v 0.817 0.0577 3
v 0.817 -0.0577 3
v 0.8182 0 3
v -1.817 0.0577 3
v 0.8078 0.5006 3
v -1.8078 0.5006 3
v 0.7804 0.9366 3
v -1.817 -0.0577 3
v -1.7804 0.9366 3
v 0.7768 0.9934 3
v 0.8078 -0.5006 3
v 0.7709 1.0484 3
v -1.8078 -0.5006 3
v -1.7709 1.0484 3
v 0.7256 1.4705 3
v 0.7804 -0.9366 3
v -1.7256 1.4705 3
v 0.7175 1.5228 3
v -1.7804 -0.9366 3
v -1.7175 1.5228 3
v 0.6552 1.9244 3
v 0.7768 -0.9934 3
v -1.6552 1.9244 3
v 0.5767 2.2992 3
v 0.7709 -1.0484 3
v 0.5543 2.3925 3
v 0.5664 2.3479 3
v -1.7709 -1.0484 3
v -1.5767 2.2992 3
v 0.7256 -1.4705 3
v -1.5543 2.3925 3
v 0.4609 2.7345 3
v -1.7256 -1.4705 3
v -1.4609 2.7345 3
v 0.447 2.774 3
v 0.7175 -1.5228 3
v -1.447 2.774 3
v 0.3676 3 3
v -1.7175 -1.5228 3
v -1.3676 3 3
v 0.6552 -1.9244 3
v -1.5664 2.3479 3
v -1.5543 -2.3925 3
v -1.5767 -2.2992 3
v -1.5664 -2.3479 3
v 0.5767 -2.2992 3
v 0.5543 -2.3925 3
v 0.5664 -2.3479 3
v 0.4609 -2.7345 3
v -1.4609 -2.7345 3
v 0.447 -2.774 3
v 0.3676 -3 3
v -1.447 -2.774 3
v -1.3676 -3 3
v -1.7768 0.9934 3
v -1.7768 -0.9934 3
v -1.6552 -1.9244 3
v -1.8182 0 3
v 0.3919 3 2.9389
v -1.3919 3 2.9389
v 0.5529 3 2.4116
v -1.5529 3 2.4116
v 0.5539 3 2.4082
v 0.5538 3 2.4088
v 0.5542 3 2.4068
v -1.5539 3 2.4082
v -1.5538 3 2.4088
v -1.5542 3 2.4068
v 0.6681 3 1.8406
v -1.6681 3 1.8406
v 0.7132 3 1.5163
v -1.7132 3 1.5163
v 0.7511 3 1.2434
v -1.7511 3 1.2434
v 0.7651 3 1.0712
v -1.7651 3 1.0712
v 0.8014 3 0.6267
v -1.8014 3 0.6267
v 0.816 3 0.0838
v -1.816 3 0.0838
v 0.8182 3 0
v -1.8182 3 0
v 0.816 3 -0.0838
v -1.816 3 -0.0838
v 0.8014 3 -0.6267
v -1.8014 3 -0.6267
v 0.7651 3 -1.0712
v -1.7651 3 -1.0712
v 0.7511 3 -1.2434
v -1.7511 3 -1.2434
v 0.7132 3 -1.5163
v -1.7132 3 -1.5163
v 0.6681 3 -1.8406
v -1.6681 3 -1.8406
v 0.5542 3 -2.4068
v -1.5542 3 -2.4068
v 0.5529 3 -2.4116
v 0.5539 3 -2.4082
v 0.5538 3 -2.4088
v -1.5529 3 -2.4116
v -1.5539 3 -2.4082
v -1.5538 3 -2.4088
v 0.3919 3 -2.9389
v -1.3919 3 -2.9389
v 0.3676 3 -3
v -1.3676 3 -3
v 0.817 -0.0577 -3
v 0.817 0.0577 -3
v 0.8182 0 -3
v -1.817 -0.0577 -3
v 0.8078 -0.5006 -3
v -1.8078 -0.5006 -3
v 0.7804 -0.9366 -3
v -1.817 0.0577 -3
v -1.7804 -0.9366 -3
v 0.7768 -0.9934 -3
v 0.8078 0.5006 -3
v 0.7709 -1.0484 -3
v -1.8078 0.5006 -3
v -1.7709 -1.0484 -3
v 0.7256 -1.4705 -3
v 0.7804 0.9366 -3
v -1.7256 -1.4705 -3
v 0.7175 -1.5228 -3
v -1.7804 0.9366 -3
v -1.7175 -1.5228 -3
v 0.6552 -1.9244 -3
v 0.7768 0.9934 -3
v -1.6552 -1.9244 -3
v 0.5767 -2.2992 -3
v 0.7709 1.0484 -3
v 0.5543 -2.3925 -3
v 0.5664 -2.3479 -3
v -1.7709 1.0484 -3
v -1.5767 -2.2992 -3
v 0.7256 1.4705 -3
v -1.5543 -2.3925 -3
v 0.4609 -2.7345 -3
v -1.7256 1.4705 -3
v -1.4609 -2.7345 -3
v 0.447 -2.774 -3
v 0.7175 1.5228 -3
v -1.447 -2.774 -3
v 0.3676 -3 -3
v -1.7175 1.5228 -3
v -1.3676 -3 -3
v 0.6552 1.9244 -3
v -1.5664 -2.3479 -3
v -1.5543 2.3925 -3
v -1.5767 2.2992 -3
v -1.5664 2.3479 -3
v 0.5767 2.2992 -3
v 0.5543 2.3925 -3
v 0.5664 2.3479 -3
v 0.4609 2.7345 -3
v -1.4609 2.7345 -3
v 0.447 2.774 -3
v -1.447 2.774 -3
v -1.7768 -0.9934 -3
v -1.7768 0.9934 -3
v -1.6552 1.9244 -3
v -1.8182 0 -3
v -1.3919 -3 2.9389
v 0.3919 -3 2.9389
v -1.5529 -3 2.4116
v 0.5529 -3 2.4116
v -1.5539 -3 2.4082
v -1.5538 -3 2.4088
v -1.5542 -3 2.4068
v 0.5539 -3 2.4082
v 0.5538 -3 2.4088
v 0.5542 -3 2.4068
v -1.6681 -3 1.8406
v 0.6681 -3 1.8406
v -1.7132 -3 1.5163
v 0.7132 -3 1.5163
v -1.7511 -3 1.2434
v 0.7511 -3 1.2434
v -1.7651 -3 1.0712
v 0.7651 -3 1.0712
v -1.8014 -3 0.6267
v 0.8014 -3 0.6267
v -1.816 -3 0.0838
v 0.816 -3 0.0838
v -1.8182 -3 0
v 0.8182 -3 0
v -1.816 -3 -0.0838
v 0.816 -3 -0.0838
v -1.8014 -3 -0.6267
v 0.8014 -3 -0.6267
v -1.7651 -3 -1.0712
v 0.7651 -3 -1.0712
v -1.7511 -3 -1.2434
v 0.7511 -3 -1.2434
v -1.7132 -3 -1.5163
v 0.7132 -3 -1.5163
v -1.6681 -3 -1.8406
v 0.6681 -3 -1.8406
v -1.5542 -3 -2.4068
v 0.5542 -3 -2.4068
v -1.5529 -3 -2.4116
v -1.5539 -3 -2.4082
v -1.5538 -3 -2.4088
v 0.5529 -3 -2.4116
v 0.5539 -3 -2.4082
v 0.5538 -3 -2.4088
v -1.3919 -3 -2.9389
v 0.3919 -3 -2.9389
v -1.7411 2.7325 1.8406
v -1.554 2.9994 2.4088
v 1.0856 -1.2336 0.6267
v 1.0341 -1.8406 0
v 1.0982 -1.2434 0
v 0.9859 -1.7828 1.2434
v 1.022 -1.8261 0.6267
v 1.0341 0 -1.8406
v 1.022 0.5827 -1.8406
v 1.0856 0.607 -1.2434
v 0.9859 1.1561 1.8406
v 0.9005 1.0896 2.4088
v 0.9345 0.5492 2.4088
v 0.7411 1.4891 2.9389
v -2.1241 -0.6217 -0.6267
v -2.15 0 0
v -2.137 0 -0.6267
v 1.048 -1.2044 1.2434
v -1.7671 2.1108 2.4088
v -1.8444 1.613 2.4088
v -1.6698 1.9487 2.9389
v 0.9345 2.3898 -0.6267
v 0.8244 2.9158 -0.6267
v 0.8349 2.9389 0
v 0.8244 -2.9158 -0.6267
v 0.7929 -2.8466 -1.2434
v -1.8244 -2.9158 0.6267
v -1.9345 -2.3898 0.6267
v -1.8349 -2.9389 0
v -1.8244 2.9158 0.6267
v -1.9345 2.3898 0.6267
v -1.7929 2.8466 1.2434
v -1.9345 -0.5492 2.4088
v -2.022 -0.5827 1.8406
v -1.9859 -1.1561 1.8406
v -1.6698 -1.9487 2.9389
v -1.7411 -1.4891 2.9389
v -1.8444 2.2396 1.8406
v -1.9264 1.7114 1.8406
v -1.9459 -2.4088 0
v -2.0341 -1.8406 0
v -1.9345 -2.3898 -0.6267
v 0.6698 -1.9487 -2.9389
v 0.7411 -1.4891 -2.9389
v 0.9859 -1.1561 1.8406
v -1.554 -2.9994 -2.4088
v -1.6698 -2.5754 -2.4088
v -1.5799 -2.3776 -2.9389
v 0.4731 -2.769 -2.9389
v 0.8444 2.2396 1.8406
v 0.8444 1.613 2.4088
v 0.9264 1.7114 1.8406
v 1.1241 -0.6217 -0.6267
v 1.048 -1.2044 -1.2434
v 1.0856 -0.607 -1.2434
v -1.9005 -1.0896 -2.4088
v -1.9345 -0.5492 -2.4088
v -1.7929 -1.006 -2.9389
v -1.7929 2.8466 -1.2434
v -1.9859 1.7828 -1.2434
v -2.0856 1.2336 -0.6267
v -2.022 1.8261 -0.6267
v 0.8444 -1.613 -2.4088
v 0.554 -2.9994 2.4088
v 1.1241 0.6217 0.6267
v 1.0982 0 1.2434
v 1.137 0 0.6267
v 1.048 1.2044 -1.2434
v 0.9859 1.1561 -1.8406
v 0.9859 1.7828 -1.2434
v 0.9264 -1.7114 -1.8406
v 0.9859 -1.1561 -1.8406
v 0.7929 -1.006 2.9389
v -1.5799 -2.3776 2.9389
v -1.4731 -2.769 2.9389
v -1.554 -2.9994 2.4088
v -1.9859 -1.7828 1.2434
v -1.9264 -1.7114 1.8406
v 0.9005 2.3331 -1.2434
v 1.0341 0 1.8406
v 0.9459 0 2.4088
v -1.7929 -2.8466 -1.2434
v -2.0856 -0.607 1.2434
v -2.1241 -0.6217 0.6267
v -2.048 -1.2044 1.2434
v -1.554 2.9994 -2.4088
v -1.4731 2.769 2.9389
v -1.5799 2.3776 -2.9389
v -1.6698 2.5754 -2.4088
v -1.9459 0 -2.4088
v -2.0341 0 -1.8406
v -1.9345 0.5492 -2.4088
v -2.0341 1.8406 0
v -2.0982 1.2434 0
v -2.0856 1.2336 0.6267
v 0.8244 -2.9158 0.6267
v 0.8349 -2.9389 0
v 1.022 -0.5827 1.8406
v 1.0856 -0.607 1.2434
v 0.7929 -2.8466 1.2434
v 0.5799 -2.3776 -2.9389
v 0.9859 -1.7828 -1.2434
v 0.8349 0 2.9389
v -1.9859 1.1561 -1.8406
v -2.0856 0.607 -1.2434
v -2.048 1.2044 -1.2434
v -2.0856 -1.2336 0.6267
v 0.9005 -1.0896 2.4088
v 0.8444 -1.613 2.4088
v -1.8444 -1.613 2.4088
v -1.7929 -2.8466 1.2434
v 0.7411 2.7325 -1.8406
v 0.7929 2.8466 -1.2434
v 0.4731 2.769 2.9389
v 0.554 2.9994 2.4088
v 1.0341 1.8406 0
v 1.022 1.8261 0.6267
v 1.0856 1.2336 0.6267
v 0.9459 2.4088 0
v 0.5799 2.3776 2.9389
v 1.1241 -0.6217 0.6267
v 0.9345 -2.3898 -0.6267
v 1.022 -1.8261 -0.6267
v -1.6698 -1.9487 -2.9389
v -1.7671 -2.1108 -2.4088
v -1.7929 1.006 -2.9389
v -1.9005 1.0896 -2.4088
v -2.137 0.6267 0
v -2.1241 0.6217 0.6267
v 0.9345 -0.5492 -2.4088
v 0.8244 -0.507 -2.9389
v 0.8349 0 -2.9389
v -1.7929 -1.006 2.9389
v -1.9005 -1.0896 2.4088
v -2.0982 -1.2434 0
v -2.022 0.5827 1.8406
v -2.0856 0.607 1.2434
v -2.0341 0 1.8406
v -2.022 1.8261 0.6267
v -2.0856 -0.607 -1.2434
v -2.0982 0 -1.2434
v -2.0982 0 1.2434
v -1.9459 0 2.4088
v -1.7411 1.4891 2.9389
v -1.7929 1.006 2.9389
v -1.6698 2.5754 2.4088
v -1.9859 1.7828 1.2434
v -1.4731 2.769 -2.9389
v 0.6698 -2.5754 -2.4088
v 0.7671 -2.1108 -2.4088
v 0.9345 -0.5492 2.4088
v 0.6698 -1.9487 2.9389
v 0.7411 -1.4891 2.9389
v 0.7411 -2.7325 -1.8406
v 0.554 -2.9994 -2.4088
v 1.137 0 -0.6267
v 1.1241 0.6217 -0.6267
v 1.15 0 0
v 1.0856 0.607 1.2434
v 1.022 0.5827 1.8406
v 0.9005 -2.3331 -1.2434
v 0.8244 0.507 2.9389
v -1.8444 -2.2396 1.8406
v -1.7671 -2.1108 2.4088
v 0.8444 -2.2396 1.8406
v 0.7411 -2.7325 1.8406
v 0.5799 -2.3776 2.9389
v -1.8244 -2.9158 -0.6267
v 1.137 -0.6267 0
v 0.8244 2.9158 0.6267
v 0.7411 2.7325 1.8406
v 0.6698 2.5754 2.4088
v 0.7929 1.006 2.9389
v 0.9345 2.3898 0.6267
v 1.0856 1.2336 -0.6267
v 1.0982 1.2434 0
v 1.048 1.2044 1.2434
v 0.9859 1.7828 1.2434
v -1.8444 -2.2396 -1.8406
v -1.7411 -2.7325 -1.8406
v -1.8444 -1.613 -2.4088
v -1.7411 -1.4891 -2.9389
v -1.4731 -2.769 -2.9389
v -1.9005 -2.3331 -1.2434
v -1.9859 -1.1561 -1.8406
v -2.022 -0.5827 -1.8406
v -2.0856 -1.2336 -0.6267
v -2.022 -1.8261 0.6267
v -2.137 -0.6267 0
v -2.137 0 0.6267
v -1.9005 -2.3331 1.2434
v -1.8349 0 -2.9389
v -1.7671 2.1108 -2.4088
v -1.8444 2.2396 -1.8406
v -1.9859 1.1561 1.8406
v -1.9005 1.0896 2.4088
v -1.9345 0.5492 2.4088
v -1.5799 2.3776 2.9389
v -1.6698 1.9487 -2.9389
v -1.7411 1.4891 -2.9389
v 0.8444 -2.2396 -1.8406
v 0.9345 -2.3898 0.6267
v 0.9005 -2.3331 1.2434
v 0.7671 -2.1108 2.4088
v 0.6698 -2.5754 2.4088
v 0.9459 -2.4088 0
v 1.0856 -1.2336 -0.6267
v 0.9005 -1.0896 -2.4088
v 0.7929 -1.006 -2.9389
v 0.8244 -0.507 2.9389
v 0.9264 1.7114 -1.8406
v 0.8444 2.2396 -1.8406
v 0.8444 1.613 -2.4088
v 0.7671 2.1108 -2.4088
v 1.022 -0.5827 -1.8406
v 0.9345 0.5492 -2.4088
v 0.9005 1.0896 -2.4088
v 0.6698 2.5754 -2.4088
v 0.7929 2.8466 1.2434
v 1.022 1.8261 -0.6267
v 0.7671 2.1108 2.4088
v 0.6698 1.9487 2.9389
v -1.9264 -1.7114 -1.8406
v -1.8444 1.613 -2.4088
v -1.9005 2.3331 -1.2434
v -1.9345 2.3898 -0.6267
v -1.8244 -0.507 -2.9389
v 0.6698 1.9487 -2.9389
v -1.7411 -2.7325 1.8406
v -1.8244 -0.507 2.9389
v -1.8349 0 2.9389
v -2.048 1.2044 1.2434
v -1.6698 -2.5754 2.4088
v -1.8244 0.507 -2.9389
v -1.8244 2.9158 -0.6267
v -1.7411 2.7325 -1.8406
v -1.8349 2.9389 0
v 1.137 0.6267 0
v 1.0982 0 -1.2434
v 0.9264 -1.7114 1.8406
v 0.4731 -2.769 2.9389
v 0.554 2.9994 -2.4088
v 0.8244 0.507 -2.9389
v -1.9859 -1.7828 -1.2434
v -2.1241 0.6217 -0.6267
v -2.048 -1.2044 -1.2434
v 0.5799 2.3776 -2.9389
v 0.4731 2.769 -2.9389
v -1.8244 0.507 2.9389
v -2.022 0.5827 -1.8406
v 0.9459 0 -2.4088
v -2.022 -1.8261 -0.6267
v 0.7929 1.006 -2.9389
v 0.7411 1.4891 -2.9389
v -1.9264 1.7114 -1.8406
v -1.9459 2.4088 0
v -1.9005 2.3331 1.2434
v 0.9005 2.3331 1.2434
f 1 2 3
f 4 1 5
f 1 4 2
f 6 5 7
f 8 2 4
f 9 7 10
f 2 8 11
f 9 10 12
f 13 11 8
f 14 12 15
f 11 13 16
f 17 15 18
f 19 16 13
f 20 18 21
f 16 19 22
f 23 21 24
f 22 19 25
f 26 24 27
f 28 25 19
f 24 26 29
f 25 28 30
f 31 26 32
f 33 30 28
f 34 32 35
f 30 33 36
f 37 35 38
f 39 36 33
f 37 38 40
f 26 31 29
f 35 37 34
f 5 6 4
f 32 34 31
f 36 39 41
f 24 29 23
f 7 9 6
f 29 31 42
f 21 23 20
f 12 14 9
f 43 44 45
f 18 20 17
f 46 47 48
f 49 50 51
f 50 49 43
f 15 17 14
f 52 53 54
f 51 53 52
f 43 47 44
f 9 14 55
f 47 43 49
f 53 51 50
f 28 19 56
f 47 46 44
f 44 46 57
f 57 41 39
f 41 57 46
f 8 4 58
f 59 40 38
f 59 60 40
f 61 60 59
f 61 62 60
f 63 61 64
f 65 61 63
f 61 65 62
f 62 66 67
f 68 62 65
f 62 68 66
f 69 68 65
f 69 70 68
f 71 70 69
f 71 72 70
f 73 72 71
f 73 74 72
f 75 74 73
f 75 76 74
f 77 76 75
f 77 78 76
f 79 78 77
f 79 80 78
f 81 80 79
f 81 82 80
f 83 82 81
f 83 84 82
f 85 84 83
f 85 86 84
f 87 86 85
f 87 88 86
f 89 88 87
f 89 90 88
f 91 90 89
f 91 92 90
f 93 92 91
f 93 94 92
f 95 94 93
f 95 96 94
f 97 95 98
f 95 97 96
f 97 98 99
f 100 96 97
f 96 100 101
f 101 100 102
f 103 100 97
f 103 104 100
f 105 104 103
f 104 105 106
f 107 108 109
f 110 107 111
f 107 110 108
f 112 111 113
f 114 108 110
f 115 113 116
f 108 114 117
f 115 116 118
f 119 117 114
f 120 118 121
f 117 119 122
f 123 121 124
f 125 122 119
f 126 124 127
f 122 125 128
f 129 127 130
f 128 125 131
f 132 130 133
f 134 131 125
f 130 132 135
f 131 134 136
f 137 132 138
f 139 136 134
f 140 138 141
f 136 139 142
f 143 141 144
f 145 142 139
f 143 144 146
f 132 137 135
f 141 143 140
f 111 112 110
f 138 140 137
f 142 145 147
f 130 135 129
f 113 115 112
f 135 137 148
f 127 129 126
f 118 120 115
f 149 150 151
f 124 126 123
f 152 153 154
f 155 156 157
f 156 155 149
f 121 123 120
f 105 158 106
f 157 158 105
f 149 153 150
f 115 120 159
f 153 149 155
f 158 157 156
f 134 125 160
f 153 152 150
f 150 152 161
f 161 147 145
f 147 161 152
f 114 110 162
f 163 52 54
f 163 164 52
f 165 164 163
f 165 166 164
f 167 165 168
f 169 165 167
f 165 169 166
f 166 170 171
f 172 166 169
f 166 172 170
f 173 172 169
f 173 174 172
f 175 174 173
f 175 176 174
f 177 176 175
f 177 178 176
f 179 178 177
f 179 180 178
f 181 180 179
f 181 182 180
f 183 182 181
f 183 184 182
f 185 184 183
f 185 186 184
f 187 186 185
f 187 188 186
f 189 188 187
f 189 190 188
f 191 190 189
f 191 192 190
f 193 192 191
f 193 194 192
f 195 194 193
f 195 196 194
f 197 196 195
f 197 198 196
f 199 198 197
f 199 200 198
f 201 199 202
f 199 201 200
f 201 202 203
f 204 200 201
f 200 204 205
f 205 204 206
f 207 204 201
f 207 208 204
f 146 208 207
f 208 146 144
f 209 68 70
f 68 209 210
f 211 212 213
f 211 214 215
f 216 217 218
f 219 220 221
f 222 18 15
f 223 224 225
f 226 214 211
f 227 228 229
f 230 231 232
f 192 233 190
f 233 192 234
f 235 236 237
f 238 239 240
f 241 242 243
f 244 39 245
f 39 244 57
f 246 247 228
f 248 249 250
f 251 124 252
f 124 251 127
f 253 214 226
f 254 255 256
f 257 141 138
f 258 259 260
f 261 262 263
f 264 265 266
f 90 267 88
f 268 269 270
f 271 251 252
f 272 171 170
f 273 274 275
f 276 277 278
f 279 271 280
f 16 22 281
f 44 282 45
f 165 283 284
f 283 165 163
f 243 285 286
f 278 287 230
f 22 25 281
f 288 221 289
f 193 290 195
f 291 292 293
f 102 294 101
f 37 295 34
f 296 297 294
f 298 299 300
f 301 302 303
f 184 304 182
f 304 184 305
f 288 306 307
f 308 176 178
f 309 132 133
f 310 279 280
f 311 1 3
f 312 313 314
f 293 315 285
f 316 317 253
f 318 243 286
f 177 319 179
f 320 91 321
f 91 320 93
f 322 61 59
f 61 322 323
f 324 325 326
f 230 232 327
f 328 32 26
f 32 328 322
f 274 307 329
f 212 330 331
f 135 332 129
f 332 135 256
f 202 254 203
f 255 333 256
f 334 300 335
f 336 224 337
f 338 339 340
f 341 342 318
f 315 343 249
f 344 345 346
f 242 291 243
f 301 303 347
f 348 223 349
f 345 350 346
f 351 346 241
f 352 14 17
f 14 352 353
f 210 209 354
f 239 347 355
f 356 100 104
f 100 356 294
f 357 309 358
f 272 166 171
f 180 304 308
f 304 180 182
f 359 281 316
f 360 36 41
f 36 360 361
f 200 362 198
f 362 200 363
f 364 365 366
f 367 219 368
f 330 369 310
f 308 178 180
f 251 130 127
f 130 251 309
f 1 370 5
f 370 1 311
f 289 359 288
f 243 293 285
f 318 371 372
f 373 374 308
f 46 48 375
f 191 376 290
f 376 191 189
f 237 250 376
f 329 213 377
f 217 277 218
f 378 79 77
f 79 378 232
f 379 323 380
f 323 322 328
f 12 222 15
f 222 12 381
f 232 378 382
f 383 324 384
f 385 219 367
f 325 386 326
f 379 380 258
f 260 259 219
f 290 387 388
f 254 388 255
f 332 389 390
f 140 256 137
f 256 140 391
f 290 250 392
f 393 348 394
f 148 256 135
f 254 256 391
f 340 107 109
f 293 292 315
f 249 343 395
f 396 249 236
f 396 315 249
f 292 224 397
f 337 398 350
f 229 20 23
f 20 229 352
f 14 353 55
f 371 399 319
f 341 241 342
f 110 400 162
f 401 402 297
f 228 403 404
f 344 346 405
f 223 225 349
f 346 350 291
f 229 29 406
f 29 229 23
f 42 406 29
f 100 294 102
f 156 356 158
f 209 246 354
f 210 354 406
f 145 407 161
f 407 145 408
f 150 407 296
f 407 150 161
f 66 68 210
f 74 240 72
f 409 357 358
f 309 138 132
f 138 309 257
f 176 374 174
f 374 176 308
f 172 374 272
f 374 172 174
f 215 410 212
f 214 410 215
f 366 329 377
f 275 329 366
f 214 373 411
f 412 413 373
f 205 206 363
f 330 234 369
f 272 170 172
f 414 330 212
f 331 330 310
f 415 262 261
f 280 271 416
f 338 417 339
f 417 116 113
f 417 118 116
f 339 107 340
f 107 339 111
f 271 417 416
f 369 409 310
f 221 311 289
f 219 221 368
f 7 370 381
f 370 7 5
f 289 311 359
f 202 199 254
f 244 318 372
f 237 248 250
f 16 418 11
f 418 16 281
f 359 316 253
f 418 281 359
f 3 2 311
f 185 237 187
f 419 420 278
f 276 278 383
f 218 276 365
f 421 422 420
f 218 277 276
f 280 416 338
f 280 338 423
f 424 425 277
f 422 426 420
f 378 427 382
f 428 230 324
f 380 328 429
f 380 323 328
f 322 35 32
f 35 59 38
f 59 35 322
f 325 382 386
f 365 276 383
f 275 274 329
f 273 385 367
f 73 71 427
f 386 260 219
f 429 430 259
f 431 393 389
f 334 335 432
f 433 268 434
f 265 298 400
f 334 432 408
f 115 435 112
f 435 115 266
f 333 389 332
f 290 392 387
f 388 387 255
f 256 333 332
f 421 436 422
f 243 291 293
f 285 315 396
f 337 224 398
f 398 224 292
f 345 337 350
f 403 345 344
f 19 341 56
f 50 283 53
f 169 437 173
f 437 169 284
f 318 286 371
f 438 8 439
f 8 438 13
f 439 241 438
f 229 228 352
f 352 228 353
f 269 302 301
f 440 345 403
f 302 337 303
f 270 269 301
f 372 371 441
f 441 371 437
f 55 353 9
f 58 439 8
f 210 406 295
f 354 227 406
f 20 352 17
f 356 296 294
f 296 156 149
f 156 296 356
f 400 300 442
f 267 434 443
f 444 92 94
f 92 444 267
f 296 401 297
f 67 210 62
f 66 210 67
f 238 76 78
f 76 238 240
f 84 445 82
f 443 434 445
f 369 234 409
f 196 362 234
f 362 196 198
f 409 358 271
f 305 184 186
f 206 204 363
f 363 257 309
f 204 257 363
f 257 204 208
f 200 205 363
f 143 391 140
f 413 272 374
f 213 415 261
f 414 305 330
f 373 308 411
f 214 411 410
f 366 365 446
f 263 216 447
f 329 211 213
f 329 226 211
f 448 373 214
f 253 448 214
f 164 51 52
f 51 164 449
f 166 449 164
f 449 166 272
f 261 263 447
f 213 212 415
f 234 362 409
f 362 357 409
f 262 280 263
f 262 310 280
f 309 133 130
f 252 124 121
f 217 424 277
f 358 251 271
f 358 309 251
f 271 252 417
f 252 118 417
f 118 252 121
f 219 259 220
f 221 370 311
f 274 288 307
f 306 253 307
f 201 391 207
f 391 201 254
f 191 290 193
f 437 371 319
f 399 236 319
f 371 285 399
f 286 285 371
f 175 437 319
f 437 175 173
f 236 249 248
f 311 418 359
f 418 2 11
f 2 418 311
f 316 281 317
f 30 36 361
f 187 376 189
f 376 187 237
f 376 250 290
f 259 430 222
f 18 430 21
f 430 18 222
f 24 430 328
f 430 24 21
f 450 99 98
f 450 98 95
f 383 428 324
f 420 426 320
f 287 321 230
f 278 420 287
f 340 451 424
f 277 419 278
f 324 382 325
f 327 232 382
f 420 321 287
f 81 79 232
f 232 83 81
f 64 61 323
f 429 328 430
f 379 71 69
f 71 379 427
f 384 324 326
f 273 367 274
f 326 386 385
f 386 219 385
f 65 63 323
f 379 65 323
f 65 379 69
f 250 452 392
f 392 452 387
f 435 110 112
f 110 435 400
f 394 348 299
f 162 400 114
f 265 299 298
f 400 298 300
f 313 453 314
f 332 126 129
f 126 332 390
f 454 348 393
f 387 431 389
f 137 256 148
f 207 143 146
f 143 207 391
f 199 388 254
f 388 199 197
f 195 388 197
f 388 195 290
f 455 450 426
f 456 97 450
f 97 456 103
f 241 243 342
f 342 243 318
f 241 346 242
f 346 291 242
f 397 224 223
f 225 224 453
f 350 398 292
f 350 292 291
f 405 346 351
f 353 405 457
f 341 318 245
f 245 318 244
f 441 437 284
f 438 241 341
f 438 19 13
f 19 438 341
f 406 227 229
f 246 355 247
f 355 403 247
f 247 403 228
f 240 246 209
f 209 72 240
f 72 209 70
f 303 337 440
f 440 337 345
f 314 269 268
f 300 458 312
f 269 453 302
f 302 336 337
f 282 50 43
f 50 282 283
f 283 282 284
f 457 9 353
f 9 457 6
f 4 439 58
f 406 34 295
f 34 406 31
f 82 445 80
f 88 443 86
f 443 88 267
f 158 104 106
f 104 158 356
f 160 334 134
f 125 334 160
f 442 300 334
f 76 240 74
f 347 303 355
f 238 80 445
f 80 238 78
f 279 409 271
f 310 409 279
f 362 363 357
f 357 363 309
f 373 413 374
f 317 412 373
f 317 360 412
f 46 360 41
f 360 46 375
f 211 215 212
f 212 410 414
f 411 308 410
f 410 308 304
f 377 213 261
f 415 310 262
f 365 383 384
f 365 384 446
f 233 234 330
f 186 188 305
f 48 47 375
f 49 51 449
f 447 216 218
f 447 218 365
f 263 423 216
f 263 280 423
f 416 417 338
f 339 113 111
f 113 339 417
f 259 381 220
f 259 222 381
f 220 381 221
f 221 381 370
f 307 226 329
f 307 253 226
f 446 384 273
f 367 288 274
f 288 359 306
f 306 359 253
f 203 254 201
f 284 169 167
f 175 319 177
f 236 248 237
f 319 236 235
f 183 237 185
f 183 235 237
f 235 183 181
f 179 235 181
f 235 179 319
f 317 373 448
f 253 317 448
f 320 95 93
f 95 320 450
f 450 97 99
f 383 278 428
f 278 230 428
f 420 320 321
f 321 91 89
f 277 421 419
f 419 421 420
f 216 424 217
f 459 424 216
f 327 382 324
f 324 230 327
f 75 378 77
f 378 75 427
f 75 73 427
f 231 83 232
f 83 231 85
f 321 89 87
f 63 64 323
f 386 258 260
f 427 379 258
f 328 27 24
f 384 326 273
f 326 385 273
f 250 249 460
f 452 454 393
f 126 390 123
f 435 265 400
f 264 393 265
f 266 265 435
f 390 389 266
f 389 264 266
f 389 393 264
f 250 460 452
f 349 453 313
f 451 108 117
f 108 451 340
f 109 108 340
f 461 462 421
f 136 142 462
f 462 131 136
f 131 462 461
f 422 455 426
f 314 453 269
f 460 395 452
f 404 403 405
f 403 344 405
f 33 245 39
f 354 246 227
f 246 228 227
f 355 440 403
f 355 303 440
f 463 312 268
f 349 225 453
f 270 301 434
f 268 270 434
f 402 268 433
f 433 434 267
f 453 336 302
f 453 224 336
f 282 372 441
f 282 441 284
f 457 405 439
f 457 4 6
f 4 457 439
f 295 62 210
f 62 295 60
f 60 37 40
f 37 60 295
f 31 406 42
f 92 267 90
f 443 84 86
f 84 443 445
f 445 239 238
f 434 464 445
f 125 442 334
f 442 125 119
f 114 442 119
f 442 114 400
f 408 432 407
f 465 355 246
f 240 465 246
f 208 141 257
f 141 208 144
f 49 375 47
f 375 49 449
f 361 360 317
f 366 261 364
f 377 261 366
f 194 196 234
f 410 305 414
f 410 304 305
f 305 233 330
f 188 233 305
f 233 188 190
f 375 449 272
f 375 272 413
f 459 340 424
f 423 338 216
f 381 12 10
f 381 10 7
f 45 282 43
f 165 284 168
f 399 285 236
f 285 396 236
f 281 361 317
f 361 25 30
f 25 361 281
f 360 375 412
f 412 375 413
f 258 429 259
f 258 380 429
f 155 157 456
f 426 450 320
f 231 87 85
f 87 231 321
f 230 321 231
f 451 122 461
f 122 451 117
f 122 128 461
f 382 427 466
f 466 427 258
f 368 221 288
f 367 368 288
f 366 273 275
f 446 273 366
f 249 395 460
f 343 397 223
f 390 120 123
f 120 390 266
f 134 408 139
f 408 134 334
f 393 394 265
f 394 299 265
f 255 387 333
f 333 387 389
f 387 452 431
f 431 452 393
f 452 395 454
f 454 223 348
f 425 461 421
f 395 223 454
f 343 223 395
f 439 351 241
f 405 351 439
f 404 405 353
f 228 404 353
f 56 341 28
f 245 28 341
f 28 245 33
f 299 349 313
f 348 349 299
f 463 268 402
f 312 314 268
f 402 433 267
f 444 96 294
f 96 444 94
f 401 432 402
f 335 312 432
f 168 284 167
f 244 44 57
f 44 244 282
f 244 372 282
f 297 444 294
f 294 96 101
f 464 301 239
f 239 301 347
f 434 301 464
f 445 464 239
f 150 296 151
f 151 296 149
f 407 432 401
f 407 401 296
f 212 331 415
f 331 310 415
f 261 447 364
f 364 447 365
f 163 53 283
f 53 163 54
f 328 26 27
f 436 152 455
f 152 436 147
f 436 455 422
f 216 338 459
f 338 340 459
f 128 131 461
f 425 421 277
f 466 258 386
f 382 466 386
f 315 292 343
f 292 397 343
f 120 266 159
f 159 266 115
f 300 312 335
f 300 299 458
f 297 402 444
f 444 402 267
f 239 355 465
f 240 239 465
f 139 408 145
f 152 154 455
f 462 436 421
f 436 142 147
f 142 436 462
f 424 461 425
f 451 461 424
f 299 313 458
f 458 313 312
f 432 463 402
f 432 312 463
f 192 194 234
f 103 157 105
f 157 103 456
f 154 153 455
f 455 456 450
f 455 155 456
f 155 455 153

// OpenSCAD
intersection(center = true ){ 
    cube([5, 6, 6], 3, center=true);
    //translate([1,0,0]){
        cube([5, 6, 6], 3, center=true);
    //}
    translate([-0.5,0,0]){
        scale([.33,1,1]){
            sphere(5, $fn = 50);
        }
    }
}
